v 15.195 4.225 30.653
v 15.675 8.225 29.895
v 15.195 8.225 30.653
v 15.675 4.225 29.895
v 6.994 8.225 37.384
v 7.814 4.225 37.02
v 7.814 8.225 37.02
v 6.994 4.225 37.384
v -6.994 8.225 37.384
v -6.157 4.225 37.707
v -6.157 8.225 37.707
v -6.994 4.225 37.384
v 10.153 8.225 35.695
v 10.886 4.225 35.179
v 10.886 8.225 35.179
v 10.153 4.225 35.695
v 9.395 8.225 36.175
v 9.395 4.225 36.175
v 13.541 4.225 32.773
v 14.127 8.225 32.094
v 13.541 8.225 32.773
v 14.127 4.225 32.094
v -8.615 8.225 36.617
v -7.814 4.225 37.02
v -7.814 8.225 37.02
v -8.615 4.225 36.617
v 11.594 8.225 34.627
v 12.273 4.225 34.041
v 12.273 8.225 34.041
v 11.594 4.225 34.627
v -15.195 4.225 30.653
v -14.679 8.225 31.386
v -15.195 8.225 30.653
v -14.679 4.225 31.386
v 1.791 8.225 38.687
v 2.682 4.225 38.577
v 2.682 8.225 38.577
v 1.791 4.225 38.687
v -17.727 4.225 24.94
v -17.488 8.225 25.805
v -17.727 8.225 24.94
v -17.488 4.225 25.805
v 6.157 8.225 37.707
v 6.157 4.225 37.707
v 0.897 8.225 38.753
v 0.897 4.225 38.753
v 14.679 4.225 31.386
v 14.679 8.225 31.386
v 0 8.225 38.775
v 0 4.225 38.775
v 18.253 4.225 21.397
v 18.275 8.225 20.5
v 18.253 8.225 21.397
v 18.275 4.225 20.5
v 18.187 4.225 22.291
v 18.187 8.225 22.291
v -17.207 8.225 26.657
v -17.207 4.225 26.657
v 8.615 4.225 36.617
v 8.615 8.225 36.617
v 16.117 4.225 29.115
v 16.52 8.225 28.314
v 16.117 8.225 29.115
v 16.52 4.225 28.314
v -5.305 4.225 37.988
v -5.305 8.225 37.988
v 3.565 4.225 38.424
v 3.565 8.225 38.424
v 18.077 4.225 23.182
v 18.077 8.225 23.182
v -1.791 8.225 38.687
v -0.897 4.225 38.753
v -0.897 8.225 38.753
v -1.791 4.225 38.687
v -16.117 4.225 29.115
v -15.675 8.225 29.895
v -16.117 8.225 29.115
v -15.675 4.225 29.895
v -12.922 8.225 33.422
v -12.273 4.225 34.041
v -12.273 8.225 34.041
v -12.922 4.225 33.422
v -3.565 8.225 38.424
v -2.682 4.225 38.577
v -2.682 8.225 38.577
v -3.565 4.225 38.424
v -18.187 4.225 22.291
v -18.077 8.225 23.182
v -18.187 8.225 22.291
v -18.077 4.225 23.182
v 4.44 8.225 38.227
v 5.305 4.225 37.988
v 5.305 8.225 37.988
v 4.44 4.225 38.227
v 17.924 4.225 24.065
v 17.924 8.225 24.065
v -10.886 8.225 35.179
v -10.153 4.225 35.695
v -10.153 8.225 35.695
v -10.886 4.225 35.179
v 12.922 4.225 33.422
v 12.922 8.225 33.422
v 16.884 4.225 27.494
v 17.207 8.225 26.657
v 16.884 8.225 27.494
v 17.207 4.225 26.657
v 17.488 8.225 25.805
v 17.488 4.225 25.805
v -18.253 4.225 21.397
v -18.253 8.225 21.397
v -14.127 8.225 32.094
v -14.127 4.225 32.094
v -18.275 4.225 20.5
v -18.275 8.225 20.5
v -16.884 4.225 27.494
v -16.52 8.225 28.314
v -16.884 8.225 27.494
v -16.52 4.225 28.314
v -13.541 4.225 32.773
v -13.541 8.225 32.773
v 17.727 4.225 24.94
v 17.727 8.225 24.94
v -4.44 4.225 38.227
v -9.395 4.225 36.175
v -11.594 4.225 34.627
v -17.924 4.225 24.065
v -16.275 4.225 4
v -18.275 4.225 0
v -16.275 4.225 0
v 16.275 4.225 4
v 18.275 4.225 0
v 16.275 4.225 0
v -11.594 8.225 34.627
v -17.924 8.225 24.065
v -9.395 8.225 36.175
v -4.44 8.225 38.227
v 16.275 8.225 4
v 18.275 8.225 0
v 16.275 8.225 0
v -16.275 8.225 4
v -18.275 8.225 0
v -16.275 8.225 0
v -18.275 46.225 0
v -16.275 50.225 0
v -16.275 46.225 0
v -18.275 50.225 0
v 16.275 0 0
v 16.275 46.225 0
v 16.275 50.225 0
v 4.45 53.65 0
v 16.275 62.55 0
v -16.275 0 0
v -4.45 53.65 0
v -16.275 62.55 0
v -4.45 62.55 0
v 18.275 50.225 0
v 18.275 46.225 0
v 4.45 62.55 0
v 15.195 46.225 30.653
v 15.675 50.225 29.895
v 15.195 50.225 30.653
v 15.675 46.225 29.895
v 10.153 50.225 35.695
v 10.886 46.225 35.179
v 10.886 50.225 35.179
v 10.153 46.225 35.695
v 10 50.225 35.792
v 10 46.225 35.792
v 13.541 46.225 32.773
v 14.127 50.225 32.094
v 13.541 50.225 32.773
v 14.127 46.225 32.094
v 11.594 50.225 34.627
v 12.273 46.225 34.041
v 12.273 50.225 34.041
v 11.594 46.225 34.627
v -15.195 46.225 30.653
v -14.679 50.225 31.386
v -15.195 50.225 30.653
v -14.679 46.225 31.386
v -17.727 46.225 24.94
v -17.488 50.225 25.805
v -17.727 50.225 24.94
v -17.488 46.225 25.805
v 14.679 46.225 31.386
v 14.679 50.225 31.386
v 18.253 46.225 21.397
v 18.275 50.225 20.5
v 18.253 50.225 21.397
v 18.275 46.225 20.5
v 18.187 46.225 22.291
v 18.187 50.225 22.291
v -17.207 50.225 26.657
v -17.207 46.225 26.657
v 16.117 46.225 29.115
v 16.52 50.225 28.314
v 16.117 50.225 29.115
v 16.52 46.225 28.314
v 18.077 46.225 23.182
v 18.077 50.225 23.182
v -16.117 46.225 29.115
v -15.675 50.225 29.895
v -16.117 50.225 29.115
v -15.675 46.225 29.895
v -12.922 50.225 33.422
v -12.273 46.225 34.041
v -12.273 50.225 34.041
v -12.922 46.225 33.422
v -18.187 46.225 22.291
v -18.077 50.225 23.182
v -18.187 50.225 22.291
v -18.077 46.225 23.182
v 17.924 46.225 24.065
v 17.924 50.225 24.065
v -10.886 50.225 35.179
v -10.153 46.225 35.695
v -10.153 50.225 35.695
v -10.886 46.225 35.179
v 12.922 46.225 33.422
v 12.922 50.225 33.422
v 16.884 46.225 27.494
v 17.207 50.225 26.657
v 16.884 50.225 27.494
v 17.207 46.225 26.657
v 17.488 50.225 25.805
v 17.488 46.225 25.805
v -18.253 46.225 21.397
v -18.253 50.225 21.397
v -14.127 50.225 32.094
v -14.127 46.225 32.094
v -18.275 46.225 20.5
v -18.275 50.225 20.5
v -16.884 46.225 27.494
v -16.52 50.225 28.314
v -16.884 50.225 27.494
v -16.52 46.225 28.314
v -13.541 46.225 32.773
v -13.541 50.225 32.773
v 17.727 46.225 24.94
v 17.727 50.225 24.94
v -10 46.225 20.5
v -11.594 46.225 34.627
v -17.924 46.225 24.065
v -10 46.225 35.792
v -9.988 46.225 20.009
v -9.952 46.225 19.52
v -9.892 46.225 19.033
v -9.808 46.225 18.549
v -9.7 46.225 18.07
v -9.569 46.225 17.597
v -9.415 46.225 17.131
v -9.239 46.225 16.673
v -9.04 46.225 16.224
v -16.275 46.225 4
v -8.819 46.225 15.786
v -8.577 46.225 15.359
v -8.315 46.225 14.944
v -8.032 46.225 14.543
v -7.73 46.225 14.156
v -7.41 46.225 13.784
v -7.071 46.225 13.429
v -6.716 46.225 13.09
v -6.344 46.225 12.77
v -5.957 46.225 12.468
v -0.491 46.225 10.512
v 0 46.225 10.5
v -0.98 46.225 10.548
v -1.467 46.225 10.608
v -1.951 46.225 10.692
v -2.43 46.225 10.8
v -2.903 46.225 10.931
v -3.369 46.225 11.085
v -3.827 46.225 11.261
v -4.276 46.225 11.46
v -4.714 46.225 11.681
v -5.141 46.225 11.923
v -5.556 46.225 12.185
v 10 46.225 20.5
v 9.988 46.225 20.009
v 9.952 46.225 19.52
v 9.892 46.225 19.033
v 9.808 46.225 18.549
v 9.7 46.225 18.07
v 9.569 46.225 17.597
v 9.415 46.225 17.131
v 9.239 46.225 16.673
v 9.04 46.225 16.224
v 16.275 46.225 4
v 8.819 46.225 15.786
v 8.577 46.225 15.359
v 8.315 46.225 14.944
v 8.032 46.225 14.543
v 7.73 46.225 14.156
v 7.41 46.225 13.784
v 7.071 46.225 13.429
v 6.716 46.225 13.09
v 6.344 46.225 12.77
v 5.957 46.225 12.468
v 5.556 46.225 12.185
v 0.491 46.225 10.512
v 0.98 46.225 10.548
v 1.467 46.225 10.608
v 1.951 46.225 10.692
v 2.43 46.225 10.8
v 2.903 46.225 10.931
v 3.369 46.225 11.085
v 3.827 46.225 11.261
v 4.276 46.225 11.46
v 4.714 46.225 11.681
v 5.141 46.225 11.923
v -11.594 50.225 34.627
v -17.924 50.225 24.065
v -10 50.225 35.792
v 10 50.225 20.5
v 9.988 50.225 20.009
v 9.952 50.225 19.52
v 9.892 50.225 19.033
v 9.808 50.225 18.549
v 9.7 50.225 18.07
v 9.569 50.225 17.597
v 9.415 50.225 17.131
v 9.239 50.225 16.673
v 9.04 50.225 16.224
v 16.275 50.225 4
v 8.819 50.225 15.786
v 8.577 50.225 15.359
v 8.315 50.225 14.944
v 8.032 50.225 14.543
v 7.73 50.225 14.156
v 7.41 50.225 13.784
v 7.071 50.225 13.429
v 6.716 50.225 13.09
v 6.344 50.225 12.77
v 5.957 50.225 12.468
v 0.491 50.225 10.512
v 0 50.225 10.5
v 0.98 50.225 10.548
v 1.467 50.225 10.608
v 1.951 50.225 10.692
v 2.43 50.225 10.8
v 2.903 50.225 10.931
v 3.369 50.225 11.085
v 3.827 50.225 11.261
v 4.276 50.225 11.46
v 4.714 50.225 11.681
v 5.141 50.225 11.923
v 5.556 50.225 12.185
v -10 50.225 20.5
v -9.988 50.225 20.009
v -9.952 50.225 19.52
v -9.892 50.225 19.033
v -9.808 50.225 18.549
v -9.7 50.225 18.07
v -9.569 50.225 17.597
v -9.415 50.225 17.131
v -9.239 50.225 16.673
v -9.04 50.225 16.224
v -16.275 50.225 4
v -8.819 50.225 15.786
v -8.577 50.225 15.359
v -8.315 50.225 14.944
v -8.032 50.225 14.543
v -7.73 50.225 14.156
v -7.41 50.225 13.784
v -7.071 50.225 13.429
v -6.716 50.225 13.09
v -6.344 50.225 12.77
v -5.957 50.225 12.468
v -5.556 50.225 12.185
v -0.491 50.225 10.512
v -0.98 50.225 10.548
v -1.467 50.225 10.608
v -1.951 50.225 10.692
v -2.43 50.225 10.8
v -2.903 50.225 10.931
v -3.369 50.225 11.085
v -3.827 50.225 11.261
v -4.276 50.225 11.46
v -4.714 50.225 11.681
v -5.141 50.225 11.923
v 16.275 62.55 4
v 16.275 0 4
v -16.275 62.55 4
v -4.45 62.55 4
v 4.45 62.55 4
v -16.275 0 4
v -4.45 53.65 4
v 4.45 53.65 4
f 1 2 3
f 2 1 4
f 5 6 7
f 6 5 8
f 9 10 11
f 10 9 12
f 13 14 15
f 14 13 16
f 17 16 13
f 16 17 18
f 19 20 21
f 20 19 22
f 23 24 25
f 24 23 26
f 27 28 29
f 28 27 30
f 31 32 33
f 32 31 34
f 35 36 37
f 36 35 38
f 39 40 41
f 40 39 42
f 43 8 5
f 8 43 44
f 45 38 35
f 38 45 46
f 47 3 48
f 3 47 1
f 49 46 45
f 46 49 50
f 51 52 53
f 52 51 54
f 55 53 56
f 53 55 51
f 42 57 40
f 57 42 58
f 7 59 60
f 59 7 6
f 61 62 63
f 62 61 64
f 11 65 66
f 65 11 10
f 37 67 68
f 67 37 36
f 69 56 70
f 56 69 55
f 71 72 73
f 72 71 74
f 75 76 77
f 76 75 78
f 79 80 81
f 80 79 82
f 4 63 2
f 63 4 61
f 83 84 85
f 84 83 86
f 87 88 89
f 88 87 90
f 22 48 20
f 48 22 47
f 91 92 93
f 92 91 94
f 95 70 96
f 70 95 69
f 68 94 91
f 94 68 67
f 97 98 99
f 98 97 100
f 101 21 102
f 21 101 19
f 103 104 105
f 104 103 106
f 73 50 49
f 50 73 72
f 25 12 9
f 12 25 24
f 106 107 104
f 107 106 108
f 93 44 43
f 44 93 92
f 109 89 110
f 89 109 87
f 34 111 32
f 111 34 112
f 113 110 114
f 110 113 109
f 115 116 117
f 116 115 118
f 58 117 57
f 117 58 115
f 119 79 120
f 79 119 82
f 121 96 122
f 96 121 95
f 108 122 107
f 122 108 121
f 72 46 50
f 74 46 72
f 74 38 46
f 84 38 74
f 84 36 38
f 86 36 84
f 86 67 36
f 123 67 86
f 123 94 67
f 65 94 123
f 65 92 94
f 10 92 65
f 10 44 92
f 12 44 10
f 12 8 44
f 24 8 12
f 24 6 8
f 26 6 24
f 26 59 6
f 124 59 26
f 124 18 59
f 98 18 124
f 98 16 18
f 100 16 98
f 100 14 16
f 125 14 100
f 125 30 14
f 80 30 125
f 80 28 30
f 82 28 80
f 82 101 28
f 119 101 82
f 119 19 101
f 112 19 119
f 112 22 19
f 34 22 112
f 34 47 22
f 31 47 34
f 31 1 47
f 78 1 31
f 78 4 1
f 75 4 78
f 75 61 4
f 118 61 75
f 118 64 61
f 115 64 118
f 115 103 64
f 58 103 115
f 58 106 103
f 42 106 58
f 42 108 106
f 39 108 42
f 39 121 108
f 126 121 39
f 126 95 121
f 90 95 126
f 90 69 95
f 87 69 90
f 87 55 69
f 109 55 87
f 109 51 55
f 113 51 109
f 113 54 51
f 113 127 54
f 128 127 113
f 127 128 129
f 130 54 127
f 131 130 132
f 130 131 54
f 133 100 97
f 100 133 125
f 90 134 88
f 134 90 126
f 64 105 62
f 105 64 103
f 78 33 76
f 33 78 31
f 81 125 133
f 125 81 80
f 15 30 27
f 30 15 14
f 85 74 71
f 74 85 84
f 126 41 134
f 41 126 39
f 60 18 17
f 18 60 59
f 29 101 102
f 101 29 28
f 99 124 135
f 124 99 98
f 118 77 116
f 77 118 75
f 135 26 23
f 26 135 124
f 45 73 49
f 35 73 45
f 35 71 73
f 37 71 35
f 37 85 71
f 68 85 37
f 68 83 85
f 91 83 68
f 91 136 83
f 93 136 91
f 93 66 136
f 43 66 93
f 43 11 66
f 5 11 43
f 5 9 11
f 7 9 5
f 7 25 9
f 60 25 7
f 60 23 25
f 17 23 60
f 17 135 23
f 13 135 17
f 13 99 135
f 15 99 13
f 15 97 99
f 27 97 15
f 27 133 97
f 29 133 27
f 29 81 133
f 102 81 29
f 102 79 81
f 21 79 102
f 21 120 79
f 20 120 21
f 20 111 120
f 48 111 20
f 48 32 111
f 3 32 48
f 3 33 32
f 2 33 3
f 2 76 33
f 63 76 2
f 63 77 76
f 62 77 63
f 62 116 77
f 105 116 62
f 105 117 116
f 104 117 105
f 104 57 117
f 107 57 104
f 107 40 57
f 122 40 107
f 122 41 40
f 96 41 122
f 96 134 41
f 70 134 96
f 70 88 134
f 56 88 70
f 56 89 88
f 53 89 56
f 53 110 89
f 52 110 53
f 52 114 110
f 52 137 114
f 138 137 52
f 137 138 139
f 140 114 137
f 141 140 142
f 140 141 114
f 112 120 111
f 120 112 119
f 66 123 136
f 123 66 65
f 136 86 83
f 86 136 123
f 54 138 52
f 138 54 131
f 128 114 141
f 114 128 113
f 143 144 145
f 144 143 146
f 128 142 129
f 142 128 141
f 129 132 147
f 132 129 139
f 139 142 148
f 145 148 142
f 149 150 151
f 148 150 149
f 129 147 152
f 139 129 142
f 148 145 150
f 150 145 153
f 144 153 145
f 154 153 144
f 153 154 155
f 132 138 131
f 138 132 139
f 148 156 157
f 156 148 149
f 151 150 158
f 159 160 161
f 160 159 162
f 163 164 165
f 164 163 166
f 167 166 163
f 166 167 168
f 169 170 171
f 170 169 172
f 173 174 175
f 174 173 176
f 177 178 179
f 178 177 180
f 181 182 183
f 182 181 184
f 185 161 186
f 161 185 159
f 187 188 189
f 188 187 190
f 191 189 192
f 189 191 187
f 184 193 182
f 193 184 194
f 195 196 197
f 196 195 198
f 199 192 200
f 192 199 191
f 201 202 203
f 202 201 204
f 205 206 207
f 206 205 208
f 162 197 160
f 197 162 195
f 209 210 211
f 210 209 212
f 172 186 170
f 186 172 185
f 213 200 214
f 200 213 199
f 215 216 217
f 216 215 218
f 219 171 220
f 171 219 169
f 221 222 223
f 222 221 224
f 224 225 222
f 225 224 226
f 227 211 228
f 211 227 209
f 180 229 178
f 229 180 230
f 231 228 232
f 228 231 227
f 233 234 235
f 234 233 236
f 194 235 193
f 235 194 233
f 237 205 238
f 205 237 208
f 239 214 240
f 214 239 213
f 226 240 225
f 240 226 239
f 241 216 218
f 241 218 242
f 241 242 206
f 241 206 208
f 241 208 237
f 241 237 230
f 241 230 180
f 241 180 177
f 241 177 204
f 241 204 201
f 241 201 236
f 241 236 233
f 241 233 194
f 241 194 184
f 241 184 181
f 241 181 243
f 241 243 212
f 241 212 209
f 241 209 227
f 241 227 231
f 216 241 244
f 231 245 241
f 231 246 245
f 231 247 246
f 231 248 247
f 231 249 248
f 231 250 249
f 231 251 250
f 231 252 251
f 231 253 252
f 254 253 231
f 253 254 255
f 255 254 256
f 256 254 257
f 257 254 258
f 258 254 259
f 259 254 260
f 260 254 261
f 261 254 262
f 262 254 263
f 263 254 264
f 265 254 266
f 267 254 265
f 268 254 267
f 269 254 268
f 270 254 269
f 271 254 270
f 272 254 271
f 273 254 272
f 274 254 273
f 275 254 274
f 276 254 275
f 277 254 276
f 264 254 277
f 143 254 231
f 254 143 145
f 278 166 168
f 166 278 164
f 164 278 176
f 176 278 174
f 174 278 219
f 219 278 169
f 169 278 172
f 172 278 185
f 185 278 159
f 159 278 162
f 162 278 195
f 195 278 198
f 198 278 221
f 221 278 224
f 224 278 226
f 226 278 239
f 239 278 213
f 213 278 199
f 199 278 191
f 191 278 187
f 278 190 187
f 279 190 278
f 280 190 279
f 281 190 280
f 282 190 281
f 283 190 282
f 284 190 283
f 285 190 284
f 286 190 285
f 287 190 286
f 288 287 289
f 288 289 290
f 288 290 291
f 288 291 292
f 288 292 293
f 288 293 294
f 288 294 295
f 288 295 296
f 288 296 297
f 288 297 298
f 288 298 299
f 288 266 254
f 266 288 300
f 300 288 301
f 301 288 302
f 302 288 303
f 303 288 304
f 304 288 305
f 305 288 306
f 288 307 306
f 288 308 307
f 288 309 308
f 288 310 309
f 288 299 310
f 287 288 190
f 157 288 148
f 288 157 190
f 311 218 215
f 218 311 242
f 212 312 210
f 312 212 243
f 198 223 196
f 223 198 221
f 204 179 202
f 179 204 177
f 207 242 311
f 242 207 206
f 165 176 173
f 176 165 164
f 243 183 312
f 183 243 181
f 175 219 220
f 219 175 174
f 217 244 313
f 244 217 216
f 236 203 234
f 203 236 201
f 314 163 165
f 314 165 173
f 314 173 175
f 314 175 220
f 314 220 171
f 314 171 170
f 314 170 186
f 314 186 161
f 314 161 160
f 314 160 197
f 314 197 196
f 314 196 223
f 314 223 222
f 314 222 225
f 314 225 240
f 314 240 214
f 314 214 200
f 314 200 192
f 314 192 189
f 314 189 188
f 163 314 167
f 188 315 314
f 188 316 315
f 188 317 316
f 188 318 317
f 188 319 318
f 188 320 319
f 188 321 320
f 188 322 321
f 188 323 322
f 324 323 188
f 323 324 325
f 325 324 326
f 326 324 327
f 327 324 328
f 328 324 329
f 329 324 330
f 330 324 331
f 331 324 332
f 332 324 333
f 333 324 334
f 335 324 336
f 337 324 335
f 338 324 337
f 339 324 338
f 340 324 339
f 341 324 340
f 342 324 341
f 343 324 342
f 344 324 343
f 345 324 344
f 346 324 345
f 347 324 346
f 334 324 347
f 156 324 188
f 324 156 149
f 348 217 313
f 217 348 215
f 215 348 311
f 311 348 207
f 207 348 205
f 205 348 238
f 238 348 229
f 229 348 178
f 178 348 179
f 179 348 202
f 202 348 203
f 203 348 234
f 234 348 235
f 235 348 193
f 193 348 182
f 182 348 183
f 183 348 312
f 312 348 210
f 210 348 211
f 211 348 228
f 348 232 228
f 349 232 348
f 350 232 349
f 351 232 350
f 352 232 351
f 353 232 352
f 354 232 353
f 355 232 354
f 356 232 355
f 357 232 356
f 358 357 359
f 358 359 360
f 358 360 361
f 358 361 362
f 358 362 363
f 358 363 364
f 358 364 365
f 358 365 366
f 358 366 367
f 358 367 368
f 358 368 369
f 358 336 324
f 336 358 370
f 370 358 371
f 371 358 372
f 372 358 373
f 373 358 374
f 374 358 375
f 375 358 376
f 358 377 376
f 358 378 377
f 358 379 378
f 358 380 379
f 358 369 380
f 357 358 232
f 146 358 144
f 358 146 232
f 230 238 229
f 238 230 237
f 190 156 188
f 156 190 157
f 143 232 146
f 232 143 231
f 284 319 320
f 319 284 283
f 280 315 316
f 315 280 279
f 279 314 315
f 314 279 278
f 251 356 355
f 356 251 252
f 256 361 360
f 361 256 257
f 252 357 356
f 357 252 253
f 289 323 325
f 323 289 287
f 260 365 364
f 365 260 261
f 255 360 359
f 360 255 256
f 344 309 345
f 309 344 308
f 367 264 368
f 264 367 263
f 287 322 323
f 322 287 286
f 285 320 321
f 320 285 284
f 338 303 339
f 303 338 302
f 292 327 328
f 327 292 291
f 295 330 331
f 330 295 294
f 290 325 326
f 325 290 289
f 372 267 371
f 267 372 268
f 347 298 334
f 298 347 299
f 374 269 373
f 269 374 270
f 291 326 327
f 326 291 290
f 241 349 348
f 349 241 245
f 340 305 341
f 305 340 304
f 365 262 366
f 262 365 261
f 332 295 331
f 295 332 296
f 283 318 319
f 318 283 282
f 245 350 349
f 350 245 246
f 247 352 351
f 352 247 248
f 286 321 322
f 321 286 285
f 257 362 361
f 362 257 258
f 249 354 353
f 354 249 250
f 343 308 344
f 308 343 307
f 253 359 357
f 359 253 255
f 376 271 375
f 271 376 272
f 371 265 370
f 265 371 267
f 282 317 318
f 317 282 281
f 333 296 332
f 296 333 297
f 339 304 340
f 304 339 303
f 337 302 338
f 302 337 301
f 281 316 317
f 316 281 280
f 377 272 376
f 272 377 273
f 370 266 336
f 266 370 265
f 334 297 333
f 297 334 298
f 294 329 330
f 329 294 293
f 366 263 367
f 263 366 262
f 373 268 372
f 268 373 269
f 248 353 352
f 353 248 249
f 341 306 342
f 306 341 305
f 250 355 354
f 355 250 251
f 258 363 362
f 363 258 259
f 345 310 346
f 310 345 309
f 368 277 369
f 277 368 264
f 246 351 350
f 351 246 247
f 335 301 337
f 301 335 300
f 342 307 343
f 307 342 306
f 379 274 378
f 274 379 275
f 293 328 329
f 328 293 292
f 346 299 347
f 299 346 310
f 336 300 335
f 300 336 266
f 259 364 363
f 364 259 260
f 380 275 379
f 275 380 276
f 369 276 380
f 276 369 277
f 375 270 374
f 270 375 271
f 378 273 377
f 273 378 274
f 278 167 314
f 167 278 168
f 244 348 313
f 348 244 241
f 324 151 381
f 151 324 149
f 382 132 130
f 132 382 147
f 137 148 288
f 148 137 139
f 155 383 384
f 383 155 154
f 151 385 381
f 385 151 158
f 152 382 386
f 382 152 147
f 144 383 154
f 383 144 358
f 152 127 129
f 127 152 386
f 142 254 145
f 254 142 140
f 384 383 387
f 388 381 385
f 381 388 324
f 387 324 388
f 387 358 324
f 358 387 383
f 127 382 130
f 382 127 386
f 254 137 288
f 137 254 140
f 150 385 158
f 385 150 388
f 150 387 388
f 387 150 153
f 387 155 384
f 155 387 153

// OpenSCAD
// Generated by SolidPython 0.4.6 on 2019-12-25 17:35:51


translate(v = [0, 0, 20.5000000000]) {
	rotate(a = [-90, 0, 0]) {
		difference() {
			union() {
				translate(v = [-16.2750000000, 0, 0]) {
					translate(v = [0, 16.5000000000, 0]) {
						cube(size = [32.5500000000, 4.0000000000, 62.5500000000]);
					}
				}
				translate(v = [0, 0, 4.2250000000]) {
					union() {
						cylinder($fn = 128, d = 36.5500000000, h = 4.0000000000);
						translate(v = [-18.2750000000, 0, 0]) {
							cube(size = [36.5500000000, 20.5000000000, 4.0000000000]);
						}
					}
				}
				translate(v = [0, 0, 46.2250000000]) {
					difference() {
						union() {
							cylinder($fn = 128, d = 36.5500000000, h = 4.0000000000);
							translate(v = [-18.2750000000, 0, 0]) {
								cube(size = [36.5500000000, 20.5000000000, 4.0000000000]);
							}
						}
						cylinder($fn = 128, d = 20.0000000000, h = 4.0000000000);
						translate(v = [-10.0000000000, 0, 0]) {
							translate(v = [0, -20.0000000000, 0]) {
								cube(size = [20.0000000000, 20.0000000000, 4.0000000000]);
							}
						}
					}
				}
			}
			translate(v = [-4.4500000000, 0, 0]) {
				translate(v = [0, 16.5000000000, 0]) {
					translate(v = [0, 0, 53.6500000000]) {
						cube(size = [8.9000000000, 4.0000000000, 8.9000000000]);
					}
				}
			}
		}
	}
}
/***********************************************
*********      SolidPython code:      **********
************************************************
 
import solid as s
import solid.utils as u


def render(suffix, final):
    suffix += ".scad"
    s.scad_render_to_file(final, __file__.replace(".py", suffix))


wall = 4.0
wall2 = wall * 2.0
head_height = 13.0
sol_dia = 33.0
collar_dia = 20.0
sol_height = 38.0
slot_depth = 2.0
nt = 0.45  # nestle tolerance
nth = nt / 2.0
hammer_width = 8.0
hammer_slot_width = hammer_width + nt + nt
hammer_slot_height = hammer_slot_width
hammer_height = 15.0
hammer_length = 45.0
total_height = head_height + sol_height + wall2 + wall2
total_width = sol_dia + wall2
lid_width = total_width - wall2 - nt
lid_base_width = total_width - wall2 + slot_depth + slot_depth - nt
slot_width = lid_base_width + nt
back_height = total_height - wall - nt

# body shell
body = s.cylinder(d=total_width, h=total_height, segments=128)
body += u.left(total_width / 2.0)(
    s.cube(size=[total_width, total_width / 2.0, total_height])
)

# body cavity
body -= s.cylinder(d=total_width - wall2, h=total_height - wall, segments=128)
body -= u.left((total_width / 2.0) - wall)(
    s.cube(size=[total_width - wall2, total_width - wall / 2.0, total_height - wall])
)

slot = s.cylinder(d=slot_width, h=wall + nt, segments=128)
slot += u.left(slot_width / 2.0)(
    s.cube(size=[slot_width, total_width - wall / 2.0, wall + nt])
)
# body base slot
body -= u.up(wall)(slot)

# body top slot
body -= u.up(total_height - wall2 - head_height + nth)(slot)

# lid back
lid = u.left(lid_width / 2.0)(
    u.forward((total_width / 2.0) - wall)(s.cube(size=[lid_width, wall, back_height]))
)

base = s.cylinder(d=lid_base_width, h=wall, segments=128)
base += u.left(lid_base_width / 2.0)(
    s.cube(size=[lid_base_width, total_width / 2.0, wall])
)

# lid base
lid += u.up(wall + nth)(base)

# lid top
top_lid = base - s.cylinder(d=collar_dia, h=wall, segments=128)
top_lid -= u.left(collar_dia / 2.0)(
    u.back(collar_dia)(s.cube(size=[collar_dia, collar_dia, wall]))
)
lid += u.up(total_height - wall2 - head_height + nth)(top_lid)

# lid hammer slot
lid -= u.left(hammer_slot_width / 2.0)(
    u.forward((total_width / 2.0) - wall)(
        u.up(back_height - hammer_slot_height)(
            s.cube(size=[hammer_slot_width, wall, hammer_slot_height])
        )
    )
)

hammer = u.left(hammer_width / 2.0)(
    u.up(back_height - hammer_slot_height)(
        u.back(hammer_width / 2.0)(
            s.cube(size=[hammer_width, hammer_length, wall])
            + u.forward(hammer_length - wall)(
                s.cube(size=[hammer_width, wall, hammer_height])
            )
        )
    )
)

blue_lid = s.color(u.Blue)(lid)
red_hammer = s.color(u.Red)(hammer)
render("", body + blue_lid + red_hammer)
render(
    "-exploded",
    body
    + u.forward(total_width)(blue_lid)
    + u.forward(total_width + total_width)(red_hammer),
)
render(
    '-print-body',
    u.up(total_height)(s.rotate(a=[180,0,0])(body))
)
render(
    '-print-lid',
    u.up(total_width / 2.0)(s.rotate(a=[-90,0,0])(lid))
)
render(
    '-print-hammer',
    u.down(back_height - hammer_slot_height)(hammer)
)
 
 
************************************************/
